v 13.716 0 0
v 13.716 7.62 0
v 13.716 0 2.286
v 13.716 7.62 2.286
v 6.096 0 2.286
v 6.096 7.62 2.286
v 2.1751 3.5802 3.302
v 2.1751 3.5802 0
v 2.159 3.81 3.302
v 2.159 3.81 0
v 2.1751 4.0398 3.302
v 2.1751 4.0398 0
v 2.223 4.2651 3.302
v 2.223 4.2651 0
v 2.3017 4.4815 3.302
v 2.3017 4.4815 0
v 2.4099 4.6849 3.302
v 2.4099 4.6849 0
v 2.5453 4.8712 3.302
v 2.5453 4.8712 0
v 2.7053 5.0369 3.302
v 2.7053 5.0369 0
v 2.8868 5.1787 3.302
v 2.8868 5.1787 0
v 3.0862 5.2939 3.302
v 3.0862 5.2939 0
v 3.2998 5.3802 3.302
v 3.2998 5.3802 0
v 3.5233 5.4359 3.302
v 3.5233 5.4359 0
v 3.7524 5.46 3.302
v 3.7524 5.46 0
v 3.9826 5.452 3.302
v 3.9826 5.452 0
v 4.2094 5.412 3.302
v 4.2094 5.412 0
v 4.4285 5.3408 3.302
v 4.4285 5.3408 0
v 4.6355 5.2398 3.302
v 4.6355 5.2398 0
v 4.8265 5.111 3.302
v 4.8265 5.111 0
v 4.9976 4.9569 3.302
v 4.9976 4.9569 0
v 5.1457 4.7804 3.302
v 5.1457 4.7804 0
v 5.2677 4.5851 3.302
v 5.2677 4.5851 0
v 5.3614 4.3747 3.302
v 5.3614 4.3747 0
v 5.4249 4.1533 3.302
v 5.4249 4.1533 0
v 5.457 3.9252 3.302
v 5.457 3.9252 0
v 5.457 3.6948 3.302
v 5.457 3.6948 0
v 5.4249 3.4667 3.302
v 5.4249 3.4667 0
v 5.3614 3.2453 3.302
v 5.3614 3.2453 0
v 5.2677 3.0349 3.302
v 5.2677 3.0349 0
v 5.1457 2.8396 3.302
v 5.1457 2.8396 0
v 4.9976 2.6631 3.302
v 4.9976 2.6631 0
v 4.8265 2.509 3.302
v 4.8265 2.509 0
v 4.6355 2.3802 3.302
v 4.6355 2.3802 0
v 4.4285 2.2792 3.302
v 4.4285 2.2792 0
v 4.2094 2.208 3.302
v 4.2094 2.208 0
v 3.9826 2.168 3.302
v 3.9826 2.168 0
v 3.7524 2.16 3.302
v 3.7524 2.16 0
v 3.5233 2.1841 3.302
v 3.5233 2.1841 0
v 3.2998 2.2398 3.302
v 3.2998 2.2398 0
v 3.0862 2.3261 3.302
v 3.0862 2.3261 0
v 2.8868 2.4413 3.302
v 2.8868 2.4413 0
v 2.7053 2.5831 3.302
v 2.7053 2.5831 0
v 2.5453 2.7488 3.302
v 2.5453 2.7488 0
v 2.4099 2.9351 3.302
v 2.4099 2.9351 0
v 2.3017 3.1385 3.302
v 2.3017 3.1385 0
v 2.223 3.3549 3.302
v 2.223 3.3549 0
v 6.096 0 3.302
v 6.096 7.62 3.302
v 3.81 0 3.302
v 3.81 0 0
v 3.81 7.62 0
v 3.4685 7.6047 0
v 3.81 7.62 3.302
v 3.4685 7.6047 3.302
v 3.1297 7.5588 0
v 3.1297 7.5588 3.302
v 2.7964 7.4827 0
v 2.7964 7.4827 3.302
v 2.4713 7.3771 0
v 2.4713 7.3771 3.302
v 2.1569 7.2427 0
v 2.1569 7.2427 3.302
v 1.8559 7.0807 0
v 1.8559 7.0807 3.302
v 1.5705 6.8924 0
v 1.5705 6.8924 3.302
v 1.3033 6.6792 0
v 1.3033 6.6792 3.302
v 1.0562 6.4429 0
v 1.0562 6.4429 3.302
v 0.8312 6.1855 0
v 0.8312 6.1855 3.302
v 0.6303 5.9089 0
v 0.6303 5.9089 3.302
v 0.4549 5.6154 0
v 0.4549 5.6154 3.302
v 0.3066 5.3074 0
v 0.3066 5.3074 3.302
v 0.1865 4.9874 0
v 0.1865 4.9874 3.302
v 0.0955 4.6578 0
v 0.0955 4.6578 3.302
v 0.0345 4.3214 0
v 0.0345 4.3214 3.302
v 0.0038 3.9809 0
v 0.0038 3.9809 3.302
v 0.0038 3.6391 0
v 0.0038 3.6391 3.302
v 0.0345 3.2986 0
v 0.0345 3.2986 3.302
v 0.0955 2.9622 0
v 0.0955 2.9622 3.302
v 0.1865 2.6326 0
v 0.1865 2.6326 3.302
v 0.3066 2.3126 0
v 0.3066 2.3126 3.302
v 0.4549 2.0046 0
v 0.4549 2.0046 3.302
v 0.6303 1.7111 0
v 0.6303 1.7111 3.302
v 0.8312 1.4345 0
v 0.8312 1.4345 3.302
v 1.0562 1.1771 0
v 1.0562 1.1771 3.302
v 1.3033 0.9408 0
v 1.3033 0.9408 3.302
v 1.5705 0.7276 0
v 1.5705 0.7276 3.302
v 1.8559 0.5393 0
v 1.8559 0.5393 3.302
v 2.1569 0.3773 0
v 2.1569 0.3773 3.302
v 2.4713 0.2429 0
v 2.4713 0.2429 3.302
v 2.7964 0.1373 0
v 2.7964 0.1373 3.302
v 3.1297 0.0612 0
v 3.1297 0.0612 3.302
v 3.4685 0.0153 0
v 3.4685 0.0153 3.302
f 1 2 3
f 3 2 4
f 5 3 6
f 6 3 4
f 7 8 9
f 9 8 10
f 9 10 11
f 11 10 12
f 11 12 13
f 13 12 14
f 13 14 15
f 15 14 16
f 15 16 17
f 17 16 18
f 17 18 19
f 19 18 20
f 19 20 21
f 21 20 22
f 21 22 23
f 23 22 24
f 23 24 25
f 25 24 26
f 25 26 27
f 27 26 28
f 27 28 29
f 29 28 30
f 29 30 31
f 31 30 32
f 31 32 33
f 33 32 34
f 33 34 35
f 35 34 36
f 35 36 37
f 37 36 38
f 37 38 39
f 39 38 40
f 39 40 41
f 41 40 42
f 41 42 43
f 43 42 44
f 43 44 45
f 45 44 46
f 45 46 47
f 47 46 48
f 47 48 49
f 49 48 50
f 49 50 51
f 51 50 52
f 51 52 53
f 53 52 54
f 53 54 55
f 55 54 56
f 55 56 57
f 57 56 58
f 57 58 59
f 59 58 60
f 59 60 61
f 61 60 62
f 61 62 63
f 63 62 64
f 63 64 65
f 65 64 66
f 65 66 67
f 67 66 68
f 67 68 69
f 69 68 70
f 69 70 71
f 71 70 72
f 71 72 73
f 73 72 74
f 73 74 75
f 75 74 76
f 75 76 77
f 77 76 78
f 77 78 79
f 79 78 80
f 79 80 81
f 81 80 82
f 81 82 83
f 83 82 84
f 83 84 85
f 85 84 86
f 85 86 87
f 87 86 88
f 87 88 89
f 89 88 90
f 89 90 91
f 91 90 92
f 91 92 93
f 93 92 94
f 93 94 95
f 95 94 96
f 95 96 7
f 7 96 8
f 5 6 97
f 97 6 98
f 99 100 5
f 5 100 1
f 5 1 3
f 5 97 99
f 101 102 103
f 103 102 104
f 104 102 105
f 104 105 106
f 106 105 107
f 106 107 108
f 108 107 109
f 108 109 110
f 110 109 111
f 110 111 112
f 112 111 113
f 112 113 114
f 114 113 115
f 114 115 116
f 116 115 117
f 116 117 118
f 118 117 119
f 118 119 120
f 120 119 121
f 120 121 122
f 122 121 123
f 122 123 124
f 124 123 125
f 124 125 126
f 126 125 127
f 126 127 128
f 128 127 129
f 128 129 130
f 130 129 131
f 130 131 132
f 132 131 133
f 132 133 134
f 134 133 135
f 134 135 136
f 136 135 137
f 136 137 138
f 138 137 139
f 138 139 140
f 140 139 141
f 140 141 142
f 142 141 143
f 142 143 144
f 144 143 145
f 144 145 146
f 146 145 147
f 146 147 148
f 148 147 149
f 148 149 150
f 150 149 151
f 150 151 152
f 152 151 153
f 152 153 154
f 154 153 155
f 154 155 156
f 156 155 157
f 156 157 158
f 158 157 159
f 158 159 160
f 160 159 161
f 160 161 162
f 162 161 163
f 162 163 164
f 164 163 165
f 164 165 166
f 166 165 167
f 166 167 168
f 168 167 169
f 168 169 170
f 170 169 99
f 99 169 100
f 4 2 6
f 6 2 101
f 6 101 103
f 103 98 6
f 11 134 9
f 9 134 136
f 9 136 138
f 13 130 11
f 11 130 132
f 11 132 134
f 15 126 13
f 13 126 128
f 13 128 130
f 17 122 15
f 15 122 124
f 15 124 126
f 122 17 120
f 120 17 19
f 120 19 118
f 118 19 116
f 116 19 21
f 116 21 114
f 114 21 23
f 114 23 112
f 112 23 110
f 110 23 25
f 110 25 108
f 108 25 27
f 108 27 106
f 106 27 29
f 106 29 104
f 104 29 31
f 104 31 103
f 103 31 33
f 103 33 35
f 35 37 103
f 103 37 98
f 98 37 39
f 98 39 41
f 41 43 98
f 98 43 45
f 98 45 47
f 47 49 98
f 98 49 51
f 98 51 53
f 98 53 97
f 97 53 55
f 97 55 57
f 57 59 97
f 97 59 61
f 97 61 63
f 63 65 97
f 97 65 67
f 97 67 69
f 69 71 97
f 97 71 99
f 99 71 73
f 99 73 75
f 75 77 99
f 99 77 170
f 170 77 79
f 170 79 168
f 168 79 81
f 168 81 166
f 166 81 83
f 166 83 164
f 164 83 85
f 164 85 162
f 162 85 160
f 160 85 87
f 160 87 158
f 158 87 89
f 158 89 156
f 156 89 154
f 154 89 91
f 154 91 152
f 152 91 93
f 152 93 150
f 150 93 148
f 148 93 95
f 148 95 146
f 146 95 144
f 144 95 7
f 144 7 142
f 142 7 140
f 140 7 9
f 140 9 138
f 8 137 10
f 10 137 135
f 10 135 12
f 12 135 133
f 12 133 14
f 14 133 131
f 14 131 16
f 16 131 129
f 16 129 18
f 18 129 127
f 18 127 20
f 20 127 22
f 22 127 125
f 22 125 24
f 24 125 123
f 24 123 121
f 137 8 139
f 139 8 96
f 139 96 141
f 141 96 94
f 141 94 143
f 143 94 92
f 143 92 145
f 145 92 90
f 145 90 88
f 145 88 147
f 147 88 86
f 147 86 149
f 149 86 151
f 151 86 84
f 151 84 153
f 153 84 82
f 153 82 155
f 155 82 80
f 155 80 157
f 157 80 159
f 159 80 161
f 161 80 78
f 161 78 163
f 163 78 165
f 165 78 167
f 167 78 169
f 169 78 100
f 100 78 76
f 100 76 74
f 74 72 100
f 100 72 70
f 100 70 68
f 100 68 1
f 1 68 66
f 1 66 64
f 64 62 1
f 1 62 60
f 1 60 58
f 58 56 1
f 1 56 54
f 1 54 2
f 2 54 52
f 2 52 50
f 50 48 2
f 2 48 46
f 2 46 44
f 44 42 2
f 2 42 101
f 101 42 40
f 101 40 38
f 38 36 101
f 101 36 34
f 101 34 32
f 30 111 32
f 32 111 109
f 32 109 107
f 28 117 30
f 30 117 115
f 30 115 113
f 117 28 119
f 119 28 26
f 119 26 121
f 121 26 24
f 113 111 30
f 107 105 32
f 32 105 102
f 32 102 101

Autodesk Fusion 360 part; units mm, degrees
sketch "Sketch1" plane through (0, 0, 0) normal (0, 0, 1) x (1, 0, 0)
  line L0 (3.81, 0) -> (13.716, 0)
  line L1 (13.716, 0) -> (13.716, 7.62)
  line L2 (13.716, 7.62) -> (3.81, 7.62)
  line L3 (0, 3.81) -> (0, 3.81)
  line L4 (6.096, 7.62) -> (6.096, 0)
  circle A0 centre (3.81, 3.81) radius 1.651
  arc A1 (0, 3.81) -> (3.81, 0) centre (3.81, 3.81) ccw
  arc A2 (3.81, 7.62) -> (0, 3.81) centre (3.81, 3.81) ccw
  point P0 (0, 7.62)
  dimension "d1" = 7.62
  dimension "d2" = 13.716
  dimension "d3" = 7.62
  dimension "d4" = 3.302
  dimension "d6" = 3.81
  dimension "d7" = 3.81
  dimension "d8" = 3.81
extrude "Extrude1" add sketch "Sketch1" along normal blind 3.302 contours L0 L2 L4 A1 A2
extrude "Extrude2" add sketch "Sketch1" along normal blind 2.286 contours L0 L1 L2 L4
